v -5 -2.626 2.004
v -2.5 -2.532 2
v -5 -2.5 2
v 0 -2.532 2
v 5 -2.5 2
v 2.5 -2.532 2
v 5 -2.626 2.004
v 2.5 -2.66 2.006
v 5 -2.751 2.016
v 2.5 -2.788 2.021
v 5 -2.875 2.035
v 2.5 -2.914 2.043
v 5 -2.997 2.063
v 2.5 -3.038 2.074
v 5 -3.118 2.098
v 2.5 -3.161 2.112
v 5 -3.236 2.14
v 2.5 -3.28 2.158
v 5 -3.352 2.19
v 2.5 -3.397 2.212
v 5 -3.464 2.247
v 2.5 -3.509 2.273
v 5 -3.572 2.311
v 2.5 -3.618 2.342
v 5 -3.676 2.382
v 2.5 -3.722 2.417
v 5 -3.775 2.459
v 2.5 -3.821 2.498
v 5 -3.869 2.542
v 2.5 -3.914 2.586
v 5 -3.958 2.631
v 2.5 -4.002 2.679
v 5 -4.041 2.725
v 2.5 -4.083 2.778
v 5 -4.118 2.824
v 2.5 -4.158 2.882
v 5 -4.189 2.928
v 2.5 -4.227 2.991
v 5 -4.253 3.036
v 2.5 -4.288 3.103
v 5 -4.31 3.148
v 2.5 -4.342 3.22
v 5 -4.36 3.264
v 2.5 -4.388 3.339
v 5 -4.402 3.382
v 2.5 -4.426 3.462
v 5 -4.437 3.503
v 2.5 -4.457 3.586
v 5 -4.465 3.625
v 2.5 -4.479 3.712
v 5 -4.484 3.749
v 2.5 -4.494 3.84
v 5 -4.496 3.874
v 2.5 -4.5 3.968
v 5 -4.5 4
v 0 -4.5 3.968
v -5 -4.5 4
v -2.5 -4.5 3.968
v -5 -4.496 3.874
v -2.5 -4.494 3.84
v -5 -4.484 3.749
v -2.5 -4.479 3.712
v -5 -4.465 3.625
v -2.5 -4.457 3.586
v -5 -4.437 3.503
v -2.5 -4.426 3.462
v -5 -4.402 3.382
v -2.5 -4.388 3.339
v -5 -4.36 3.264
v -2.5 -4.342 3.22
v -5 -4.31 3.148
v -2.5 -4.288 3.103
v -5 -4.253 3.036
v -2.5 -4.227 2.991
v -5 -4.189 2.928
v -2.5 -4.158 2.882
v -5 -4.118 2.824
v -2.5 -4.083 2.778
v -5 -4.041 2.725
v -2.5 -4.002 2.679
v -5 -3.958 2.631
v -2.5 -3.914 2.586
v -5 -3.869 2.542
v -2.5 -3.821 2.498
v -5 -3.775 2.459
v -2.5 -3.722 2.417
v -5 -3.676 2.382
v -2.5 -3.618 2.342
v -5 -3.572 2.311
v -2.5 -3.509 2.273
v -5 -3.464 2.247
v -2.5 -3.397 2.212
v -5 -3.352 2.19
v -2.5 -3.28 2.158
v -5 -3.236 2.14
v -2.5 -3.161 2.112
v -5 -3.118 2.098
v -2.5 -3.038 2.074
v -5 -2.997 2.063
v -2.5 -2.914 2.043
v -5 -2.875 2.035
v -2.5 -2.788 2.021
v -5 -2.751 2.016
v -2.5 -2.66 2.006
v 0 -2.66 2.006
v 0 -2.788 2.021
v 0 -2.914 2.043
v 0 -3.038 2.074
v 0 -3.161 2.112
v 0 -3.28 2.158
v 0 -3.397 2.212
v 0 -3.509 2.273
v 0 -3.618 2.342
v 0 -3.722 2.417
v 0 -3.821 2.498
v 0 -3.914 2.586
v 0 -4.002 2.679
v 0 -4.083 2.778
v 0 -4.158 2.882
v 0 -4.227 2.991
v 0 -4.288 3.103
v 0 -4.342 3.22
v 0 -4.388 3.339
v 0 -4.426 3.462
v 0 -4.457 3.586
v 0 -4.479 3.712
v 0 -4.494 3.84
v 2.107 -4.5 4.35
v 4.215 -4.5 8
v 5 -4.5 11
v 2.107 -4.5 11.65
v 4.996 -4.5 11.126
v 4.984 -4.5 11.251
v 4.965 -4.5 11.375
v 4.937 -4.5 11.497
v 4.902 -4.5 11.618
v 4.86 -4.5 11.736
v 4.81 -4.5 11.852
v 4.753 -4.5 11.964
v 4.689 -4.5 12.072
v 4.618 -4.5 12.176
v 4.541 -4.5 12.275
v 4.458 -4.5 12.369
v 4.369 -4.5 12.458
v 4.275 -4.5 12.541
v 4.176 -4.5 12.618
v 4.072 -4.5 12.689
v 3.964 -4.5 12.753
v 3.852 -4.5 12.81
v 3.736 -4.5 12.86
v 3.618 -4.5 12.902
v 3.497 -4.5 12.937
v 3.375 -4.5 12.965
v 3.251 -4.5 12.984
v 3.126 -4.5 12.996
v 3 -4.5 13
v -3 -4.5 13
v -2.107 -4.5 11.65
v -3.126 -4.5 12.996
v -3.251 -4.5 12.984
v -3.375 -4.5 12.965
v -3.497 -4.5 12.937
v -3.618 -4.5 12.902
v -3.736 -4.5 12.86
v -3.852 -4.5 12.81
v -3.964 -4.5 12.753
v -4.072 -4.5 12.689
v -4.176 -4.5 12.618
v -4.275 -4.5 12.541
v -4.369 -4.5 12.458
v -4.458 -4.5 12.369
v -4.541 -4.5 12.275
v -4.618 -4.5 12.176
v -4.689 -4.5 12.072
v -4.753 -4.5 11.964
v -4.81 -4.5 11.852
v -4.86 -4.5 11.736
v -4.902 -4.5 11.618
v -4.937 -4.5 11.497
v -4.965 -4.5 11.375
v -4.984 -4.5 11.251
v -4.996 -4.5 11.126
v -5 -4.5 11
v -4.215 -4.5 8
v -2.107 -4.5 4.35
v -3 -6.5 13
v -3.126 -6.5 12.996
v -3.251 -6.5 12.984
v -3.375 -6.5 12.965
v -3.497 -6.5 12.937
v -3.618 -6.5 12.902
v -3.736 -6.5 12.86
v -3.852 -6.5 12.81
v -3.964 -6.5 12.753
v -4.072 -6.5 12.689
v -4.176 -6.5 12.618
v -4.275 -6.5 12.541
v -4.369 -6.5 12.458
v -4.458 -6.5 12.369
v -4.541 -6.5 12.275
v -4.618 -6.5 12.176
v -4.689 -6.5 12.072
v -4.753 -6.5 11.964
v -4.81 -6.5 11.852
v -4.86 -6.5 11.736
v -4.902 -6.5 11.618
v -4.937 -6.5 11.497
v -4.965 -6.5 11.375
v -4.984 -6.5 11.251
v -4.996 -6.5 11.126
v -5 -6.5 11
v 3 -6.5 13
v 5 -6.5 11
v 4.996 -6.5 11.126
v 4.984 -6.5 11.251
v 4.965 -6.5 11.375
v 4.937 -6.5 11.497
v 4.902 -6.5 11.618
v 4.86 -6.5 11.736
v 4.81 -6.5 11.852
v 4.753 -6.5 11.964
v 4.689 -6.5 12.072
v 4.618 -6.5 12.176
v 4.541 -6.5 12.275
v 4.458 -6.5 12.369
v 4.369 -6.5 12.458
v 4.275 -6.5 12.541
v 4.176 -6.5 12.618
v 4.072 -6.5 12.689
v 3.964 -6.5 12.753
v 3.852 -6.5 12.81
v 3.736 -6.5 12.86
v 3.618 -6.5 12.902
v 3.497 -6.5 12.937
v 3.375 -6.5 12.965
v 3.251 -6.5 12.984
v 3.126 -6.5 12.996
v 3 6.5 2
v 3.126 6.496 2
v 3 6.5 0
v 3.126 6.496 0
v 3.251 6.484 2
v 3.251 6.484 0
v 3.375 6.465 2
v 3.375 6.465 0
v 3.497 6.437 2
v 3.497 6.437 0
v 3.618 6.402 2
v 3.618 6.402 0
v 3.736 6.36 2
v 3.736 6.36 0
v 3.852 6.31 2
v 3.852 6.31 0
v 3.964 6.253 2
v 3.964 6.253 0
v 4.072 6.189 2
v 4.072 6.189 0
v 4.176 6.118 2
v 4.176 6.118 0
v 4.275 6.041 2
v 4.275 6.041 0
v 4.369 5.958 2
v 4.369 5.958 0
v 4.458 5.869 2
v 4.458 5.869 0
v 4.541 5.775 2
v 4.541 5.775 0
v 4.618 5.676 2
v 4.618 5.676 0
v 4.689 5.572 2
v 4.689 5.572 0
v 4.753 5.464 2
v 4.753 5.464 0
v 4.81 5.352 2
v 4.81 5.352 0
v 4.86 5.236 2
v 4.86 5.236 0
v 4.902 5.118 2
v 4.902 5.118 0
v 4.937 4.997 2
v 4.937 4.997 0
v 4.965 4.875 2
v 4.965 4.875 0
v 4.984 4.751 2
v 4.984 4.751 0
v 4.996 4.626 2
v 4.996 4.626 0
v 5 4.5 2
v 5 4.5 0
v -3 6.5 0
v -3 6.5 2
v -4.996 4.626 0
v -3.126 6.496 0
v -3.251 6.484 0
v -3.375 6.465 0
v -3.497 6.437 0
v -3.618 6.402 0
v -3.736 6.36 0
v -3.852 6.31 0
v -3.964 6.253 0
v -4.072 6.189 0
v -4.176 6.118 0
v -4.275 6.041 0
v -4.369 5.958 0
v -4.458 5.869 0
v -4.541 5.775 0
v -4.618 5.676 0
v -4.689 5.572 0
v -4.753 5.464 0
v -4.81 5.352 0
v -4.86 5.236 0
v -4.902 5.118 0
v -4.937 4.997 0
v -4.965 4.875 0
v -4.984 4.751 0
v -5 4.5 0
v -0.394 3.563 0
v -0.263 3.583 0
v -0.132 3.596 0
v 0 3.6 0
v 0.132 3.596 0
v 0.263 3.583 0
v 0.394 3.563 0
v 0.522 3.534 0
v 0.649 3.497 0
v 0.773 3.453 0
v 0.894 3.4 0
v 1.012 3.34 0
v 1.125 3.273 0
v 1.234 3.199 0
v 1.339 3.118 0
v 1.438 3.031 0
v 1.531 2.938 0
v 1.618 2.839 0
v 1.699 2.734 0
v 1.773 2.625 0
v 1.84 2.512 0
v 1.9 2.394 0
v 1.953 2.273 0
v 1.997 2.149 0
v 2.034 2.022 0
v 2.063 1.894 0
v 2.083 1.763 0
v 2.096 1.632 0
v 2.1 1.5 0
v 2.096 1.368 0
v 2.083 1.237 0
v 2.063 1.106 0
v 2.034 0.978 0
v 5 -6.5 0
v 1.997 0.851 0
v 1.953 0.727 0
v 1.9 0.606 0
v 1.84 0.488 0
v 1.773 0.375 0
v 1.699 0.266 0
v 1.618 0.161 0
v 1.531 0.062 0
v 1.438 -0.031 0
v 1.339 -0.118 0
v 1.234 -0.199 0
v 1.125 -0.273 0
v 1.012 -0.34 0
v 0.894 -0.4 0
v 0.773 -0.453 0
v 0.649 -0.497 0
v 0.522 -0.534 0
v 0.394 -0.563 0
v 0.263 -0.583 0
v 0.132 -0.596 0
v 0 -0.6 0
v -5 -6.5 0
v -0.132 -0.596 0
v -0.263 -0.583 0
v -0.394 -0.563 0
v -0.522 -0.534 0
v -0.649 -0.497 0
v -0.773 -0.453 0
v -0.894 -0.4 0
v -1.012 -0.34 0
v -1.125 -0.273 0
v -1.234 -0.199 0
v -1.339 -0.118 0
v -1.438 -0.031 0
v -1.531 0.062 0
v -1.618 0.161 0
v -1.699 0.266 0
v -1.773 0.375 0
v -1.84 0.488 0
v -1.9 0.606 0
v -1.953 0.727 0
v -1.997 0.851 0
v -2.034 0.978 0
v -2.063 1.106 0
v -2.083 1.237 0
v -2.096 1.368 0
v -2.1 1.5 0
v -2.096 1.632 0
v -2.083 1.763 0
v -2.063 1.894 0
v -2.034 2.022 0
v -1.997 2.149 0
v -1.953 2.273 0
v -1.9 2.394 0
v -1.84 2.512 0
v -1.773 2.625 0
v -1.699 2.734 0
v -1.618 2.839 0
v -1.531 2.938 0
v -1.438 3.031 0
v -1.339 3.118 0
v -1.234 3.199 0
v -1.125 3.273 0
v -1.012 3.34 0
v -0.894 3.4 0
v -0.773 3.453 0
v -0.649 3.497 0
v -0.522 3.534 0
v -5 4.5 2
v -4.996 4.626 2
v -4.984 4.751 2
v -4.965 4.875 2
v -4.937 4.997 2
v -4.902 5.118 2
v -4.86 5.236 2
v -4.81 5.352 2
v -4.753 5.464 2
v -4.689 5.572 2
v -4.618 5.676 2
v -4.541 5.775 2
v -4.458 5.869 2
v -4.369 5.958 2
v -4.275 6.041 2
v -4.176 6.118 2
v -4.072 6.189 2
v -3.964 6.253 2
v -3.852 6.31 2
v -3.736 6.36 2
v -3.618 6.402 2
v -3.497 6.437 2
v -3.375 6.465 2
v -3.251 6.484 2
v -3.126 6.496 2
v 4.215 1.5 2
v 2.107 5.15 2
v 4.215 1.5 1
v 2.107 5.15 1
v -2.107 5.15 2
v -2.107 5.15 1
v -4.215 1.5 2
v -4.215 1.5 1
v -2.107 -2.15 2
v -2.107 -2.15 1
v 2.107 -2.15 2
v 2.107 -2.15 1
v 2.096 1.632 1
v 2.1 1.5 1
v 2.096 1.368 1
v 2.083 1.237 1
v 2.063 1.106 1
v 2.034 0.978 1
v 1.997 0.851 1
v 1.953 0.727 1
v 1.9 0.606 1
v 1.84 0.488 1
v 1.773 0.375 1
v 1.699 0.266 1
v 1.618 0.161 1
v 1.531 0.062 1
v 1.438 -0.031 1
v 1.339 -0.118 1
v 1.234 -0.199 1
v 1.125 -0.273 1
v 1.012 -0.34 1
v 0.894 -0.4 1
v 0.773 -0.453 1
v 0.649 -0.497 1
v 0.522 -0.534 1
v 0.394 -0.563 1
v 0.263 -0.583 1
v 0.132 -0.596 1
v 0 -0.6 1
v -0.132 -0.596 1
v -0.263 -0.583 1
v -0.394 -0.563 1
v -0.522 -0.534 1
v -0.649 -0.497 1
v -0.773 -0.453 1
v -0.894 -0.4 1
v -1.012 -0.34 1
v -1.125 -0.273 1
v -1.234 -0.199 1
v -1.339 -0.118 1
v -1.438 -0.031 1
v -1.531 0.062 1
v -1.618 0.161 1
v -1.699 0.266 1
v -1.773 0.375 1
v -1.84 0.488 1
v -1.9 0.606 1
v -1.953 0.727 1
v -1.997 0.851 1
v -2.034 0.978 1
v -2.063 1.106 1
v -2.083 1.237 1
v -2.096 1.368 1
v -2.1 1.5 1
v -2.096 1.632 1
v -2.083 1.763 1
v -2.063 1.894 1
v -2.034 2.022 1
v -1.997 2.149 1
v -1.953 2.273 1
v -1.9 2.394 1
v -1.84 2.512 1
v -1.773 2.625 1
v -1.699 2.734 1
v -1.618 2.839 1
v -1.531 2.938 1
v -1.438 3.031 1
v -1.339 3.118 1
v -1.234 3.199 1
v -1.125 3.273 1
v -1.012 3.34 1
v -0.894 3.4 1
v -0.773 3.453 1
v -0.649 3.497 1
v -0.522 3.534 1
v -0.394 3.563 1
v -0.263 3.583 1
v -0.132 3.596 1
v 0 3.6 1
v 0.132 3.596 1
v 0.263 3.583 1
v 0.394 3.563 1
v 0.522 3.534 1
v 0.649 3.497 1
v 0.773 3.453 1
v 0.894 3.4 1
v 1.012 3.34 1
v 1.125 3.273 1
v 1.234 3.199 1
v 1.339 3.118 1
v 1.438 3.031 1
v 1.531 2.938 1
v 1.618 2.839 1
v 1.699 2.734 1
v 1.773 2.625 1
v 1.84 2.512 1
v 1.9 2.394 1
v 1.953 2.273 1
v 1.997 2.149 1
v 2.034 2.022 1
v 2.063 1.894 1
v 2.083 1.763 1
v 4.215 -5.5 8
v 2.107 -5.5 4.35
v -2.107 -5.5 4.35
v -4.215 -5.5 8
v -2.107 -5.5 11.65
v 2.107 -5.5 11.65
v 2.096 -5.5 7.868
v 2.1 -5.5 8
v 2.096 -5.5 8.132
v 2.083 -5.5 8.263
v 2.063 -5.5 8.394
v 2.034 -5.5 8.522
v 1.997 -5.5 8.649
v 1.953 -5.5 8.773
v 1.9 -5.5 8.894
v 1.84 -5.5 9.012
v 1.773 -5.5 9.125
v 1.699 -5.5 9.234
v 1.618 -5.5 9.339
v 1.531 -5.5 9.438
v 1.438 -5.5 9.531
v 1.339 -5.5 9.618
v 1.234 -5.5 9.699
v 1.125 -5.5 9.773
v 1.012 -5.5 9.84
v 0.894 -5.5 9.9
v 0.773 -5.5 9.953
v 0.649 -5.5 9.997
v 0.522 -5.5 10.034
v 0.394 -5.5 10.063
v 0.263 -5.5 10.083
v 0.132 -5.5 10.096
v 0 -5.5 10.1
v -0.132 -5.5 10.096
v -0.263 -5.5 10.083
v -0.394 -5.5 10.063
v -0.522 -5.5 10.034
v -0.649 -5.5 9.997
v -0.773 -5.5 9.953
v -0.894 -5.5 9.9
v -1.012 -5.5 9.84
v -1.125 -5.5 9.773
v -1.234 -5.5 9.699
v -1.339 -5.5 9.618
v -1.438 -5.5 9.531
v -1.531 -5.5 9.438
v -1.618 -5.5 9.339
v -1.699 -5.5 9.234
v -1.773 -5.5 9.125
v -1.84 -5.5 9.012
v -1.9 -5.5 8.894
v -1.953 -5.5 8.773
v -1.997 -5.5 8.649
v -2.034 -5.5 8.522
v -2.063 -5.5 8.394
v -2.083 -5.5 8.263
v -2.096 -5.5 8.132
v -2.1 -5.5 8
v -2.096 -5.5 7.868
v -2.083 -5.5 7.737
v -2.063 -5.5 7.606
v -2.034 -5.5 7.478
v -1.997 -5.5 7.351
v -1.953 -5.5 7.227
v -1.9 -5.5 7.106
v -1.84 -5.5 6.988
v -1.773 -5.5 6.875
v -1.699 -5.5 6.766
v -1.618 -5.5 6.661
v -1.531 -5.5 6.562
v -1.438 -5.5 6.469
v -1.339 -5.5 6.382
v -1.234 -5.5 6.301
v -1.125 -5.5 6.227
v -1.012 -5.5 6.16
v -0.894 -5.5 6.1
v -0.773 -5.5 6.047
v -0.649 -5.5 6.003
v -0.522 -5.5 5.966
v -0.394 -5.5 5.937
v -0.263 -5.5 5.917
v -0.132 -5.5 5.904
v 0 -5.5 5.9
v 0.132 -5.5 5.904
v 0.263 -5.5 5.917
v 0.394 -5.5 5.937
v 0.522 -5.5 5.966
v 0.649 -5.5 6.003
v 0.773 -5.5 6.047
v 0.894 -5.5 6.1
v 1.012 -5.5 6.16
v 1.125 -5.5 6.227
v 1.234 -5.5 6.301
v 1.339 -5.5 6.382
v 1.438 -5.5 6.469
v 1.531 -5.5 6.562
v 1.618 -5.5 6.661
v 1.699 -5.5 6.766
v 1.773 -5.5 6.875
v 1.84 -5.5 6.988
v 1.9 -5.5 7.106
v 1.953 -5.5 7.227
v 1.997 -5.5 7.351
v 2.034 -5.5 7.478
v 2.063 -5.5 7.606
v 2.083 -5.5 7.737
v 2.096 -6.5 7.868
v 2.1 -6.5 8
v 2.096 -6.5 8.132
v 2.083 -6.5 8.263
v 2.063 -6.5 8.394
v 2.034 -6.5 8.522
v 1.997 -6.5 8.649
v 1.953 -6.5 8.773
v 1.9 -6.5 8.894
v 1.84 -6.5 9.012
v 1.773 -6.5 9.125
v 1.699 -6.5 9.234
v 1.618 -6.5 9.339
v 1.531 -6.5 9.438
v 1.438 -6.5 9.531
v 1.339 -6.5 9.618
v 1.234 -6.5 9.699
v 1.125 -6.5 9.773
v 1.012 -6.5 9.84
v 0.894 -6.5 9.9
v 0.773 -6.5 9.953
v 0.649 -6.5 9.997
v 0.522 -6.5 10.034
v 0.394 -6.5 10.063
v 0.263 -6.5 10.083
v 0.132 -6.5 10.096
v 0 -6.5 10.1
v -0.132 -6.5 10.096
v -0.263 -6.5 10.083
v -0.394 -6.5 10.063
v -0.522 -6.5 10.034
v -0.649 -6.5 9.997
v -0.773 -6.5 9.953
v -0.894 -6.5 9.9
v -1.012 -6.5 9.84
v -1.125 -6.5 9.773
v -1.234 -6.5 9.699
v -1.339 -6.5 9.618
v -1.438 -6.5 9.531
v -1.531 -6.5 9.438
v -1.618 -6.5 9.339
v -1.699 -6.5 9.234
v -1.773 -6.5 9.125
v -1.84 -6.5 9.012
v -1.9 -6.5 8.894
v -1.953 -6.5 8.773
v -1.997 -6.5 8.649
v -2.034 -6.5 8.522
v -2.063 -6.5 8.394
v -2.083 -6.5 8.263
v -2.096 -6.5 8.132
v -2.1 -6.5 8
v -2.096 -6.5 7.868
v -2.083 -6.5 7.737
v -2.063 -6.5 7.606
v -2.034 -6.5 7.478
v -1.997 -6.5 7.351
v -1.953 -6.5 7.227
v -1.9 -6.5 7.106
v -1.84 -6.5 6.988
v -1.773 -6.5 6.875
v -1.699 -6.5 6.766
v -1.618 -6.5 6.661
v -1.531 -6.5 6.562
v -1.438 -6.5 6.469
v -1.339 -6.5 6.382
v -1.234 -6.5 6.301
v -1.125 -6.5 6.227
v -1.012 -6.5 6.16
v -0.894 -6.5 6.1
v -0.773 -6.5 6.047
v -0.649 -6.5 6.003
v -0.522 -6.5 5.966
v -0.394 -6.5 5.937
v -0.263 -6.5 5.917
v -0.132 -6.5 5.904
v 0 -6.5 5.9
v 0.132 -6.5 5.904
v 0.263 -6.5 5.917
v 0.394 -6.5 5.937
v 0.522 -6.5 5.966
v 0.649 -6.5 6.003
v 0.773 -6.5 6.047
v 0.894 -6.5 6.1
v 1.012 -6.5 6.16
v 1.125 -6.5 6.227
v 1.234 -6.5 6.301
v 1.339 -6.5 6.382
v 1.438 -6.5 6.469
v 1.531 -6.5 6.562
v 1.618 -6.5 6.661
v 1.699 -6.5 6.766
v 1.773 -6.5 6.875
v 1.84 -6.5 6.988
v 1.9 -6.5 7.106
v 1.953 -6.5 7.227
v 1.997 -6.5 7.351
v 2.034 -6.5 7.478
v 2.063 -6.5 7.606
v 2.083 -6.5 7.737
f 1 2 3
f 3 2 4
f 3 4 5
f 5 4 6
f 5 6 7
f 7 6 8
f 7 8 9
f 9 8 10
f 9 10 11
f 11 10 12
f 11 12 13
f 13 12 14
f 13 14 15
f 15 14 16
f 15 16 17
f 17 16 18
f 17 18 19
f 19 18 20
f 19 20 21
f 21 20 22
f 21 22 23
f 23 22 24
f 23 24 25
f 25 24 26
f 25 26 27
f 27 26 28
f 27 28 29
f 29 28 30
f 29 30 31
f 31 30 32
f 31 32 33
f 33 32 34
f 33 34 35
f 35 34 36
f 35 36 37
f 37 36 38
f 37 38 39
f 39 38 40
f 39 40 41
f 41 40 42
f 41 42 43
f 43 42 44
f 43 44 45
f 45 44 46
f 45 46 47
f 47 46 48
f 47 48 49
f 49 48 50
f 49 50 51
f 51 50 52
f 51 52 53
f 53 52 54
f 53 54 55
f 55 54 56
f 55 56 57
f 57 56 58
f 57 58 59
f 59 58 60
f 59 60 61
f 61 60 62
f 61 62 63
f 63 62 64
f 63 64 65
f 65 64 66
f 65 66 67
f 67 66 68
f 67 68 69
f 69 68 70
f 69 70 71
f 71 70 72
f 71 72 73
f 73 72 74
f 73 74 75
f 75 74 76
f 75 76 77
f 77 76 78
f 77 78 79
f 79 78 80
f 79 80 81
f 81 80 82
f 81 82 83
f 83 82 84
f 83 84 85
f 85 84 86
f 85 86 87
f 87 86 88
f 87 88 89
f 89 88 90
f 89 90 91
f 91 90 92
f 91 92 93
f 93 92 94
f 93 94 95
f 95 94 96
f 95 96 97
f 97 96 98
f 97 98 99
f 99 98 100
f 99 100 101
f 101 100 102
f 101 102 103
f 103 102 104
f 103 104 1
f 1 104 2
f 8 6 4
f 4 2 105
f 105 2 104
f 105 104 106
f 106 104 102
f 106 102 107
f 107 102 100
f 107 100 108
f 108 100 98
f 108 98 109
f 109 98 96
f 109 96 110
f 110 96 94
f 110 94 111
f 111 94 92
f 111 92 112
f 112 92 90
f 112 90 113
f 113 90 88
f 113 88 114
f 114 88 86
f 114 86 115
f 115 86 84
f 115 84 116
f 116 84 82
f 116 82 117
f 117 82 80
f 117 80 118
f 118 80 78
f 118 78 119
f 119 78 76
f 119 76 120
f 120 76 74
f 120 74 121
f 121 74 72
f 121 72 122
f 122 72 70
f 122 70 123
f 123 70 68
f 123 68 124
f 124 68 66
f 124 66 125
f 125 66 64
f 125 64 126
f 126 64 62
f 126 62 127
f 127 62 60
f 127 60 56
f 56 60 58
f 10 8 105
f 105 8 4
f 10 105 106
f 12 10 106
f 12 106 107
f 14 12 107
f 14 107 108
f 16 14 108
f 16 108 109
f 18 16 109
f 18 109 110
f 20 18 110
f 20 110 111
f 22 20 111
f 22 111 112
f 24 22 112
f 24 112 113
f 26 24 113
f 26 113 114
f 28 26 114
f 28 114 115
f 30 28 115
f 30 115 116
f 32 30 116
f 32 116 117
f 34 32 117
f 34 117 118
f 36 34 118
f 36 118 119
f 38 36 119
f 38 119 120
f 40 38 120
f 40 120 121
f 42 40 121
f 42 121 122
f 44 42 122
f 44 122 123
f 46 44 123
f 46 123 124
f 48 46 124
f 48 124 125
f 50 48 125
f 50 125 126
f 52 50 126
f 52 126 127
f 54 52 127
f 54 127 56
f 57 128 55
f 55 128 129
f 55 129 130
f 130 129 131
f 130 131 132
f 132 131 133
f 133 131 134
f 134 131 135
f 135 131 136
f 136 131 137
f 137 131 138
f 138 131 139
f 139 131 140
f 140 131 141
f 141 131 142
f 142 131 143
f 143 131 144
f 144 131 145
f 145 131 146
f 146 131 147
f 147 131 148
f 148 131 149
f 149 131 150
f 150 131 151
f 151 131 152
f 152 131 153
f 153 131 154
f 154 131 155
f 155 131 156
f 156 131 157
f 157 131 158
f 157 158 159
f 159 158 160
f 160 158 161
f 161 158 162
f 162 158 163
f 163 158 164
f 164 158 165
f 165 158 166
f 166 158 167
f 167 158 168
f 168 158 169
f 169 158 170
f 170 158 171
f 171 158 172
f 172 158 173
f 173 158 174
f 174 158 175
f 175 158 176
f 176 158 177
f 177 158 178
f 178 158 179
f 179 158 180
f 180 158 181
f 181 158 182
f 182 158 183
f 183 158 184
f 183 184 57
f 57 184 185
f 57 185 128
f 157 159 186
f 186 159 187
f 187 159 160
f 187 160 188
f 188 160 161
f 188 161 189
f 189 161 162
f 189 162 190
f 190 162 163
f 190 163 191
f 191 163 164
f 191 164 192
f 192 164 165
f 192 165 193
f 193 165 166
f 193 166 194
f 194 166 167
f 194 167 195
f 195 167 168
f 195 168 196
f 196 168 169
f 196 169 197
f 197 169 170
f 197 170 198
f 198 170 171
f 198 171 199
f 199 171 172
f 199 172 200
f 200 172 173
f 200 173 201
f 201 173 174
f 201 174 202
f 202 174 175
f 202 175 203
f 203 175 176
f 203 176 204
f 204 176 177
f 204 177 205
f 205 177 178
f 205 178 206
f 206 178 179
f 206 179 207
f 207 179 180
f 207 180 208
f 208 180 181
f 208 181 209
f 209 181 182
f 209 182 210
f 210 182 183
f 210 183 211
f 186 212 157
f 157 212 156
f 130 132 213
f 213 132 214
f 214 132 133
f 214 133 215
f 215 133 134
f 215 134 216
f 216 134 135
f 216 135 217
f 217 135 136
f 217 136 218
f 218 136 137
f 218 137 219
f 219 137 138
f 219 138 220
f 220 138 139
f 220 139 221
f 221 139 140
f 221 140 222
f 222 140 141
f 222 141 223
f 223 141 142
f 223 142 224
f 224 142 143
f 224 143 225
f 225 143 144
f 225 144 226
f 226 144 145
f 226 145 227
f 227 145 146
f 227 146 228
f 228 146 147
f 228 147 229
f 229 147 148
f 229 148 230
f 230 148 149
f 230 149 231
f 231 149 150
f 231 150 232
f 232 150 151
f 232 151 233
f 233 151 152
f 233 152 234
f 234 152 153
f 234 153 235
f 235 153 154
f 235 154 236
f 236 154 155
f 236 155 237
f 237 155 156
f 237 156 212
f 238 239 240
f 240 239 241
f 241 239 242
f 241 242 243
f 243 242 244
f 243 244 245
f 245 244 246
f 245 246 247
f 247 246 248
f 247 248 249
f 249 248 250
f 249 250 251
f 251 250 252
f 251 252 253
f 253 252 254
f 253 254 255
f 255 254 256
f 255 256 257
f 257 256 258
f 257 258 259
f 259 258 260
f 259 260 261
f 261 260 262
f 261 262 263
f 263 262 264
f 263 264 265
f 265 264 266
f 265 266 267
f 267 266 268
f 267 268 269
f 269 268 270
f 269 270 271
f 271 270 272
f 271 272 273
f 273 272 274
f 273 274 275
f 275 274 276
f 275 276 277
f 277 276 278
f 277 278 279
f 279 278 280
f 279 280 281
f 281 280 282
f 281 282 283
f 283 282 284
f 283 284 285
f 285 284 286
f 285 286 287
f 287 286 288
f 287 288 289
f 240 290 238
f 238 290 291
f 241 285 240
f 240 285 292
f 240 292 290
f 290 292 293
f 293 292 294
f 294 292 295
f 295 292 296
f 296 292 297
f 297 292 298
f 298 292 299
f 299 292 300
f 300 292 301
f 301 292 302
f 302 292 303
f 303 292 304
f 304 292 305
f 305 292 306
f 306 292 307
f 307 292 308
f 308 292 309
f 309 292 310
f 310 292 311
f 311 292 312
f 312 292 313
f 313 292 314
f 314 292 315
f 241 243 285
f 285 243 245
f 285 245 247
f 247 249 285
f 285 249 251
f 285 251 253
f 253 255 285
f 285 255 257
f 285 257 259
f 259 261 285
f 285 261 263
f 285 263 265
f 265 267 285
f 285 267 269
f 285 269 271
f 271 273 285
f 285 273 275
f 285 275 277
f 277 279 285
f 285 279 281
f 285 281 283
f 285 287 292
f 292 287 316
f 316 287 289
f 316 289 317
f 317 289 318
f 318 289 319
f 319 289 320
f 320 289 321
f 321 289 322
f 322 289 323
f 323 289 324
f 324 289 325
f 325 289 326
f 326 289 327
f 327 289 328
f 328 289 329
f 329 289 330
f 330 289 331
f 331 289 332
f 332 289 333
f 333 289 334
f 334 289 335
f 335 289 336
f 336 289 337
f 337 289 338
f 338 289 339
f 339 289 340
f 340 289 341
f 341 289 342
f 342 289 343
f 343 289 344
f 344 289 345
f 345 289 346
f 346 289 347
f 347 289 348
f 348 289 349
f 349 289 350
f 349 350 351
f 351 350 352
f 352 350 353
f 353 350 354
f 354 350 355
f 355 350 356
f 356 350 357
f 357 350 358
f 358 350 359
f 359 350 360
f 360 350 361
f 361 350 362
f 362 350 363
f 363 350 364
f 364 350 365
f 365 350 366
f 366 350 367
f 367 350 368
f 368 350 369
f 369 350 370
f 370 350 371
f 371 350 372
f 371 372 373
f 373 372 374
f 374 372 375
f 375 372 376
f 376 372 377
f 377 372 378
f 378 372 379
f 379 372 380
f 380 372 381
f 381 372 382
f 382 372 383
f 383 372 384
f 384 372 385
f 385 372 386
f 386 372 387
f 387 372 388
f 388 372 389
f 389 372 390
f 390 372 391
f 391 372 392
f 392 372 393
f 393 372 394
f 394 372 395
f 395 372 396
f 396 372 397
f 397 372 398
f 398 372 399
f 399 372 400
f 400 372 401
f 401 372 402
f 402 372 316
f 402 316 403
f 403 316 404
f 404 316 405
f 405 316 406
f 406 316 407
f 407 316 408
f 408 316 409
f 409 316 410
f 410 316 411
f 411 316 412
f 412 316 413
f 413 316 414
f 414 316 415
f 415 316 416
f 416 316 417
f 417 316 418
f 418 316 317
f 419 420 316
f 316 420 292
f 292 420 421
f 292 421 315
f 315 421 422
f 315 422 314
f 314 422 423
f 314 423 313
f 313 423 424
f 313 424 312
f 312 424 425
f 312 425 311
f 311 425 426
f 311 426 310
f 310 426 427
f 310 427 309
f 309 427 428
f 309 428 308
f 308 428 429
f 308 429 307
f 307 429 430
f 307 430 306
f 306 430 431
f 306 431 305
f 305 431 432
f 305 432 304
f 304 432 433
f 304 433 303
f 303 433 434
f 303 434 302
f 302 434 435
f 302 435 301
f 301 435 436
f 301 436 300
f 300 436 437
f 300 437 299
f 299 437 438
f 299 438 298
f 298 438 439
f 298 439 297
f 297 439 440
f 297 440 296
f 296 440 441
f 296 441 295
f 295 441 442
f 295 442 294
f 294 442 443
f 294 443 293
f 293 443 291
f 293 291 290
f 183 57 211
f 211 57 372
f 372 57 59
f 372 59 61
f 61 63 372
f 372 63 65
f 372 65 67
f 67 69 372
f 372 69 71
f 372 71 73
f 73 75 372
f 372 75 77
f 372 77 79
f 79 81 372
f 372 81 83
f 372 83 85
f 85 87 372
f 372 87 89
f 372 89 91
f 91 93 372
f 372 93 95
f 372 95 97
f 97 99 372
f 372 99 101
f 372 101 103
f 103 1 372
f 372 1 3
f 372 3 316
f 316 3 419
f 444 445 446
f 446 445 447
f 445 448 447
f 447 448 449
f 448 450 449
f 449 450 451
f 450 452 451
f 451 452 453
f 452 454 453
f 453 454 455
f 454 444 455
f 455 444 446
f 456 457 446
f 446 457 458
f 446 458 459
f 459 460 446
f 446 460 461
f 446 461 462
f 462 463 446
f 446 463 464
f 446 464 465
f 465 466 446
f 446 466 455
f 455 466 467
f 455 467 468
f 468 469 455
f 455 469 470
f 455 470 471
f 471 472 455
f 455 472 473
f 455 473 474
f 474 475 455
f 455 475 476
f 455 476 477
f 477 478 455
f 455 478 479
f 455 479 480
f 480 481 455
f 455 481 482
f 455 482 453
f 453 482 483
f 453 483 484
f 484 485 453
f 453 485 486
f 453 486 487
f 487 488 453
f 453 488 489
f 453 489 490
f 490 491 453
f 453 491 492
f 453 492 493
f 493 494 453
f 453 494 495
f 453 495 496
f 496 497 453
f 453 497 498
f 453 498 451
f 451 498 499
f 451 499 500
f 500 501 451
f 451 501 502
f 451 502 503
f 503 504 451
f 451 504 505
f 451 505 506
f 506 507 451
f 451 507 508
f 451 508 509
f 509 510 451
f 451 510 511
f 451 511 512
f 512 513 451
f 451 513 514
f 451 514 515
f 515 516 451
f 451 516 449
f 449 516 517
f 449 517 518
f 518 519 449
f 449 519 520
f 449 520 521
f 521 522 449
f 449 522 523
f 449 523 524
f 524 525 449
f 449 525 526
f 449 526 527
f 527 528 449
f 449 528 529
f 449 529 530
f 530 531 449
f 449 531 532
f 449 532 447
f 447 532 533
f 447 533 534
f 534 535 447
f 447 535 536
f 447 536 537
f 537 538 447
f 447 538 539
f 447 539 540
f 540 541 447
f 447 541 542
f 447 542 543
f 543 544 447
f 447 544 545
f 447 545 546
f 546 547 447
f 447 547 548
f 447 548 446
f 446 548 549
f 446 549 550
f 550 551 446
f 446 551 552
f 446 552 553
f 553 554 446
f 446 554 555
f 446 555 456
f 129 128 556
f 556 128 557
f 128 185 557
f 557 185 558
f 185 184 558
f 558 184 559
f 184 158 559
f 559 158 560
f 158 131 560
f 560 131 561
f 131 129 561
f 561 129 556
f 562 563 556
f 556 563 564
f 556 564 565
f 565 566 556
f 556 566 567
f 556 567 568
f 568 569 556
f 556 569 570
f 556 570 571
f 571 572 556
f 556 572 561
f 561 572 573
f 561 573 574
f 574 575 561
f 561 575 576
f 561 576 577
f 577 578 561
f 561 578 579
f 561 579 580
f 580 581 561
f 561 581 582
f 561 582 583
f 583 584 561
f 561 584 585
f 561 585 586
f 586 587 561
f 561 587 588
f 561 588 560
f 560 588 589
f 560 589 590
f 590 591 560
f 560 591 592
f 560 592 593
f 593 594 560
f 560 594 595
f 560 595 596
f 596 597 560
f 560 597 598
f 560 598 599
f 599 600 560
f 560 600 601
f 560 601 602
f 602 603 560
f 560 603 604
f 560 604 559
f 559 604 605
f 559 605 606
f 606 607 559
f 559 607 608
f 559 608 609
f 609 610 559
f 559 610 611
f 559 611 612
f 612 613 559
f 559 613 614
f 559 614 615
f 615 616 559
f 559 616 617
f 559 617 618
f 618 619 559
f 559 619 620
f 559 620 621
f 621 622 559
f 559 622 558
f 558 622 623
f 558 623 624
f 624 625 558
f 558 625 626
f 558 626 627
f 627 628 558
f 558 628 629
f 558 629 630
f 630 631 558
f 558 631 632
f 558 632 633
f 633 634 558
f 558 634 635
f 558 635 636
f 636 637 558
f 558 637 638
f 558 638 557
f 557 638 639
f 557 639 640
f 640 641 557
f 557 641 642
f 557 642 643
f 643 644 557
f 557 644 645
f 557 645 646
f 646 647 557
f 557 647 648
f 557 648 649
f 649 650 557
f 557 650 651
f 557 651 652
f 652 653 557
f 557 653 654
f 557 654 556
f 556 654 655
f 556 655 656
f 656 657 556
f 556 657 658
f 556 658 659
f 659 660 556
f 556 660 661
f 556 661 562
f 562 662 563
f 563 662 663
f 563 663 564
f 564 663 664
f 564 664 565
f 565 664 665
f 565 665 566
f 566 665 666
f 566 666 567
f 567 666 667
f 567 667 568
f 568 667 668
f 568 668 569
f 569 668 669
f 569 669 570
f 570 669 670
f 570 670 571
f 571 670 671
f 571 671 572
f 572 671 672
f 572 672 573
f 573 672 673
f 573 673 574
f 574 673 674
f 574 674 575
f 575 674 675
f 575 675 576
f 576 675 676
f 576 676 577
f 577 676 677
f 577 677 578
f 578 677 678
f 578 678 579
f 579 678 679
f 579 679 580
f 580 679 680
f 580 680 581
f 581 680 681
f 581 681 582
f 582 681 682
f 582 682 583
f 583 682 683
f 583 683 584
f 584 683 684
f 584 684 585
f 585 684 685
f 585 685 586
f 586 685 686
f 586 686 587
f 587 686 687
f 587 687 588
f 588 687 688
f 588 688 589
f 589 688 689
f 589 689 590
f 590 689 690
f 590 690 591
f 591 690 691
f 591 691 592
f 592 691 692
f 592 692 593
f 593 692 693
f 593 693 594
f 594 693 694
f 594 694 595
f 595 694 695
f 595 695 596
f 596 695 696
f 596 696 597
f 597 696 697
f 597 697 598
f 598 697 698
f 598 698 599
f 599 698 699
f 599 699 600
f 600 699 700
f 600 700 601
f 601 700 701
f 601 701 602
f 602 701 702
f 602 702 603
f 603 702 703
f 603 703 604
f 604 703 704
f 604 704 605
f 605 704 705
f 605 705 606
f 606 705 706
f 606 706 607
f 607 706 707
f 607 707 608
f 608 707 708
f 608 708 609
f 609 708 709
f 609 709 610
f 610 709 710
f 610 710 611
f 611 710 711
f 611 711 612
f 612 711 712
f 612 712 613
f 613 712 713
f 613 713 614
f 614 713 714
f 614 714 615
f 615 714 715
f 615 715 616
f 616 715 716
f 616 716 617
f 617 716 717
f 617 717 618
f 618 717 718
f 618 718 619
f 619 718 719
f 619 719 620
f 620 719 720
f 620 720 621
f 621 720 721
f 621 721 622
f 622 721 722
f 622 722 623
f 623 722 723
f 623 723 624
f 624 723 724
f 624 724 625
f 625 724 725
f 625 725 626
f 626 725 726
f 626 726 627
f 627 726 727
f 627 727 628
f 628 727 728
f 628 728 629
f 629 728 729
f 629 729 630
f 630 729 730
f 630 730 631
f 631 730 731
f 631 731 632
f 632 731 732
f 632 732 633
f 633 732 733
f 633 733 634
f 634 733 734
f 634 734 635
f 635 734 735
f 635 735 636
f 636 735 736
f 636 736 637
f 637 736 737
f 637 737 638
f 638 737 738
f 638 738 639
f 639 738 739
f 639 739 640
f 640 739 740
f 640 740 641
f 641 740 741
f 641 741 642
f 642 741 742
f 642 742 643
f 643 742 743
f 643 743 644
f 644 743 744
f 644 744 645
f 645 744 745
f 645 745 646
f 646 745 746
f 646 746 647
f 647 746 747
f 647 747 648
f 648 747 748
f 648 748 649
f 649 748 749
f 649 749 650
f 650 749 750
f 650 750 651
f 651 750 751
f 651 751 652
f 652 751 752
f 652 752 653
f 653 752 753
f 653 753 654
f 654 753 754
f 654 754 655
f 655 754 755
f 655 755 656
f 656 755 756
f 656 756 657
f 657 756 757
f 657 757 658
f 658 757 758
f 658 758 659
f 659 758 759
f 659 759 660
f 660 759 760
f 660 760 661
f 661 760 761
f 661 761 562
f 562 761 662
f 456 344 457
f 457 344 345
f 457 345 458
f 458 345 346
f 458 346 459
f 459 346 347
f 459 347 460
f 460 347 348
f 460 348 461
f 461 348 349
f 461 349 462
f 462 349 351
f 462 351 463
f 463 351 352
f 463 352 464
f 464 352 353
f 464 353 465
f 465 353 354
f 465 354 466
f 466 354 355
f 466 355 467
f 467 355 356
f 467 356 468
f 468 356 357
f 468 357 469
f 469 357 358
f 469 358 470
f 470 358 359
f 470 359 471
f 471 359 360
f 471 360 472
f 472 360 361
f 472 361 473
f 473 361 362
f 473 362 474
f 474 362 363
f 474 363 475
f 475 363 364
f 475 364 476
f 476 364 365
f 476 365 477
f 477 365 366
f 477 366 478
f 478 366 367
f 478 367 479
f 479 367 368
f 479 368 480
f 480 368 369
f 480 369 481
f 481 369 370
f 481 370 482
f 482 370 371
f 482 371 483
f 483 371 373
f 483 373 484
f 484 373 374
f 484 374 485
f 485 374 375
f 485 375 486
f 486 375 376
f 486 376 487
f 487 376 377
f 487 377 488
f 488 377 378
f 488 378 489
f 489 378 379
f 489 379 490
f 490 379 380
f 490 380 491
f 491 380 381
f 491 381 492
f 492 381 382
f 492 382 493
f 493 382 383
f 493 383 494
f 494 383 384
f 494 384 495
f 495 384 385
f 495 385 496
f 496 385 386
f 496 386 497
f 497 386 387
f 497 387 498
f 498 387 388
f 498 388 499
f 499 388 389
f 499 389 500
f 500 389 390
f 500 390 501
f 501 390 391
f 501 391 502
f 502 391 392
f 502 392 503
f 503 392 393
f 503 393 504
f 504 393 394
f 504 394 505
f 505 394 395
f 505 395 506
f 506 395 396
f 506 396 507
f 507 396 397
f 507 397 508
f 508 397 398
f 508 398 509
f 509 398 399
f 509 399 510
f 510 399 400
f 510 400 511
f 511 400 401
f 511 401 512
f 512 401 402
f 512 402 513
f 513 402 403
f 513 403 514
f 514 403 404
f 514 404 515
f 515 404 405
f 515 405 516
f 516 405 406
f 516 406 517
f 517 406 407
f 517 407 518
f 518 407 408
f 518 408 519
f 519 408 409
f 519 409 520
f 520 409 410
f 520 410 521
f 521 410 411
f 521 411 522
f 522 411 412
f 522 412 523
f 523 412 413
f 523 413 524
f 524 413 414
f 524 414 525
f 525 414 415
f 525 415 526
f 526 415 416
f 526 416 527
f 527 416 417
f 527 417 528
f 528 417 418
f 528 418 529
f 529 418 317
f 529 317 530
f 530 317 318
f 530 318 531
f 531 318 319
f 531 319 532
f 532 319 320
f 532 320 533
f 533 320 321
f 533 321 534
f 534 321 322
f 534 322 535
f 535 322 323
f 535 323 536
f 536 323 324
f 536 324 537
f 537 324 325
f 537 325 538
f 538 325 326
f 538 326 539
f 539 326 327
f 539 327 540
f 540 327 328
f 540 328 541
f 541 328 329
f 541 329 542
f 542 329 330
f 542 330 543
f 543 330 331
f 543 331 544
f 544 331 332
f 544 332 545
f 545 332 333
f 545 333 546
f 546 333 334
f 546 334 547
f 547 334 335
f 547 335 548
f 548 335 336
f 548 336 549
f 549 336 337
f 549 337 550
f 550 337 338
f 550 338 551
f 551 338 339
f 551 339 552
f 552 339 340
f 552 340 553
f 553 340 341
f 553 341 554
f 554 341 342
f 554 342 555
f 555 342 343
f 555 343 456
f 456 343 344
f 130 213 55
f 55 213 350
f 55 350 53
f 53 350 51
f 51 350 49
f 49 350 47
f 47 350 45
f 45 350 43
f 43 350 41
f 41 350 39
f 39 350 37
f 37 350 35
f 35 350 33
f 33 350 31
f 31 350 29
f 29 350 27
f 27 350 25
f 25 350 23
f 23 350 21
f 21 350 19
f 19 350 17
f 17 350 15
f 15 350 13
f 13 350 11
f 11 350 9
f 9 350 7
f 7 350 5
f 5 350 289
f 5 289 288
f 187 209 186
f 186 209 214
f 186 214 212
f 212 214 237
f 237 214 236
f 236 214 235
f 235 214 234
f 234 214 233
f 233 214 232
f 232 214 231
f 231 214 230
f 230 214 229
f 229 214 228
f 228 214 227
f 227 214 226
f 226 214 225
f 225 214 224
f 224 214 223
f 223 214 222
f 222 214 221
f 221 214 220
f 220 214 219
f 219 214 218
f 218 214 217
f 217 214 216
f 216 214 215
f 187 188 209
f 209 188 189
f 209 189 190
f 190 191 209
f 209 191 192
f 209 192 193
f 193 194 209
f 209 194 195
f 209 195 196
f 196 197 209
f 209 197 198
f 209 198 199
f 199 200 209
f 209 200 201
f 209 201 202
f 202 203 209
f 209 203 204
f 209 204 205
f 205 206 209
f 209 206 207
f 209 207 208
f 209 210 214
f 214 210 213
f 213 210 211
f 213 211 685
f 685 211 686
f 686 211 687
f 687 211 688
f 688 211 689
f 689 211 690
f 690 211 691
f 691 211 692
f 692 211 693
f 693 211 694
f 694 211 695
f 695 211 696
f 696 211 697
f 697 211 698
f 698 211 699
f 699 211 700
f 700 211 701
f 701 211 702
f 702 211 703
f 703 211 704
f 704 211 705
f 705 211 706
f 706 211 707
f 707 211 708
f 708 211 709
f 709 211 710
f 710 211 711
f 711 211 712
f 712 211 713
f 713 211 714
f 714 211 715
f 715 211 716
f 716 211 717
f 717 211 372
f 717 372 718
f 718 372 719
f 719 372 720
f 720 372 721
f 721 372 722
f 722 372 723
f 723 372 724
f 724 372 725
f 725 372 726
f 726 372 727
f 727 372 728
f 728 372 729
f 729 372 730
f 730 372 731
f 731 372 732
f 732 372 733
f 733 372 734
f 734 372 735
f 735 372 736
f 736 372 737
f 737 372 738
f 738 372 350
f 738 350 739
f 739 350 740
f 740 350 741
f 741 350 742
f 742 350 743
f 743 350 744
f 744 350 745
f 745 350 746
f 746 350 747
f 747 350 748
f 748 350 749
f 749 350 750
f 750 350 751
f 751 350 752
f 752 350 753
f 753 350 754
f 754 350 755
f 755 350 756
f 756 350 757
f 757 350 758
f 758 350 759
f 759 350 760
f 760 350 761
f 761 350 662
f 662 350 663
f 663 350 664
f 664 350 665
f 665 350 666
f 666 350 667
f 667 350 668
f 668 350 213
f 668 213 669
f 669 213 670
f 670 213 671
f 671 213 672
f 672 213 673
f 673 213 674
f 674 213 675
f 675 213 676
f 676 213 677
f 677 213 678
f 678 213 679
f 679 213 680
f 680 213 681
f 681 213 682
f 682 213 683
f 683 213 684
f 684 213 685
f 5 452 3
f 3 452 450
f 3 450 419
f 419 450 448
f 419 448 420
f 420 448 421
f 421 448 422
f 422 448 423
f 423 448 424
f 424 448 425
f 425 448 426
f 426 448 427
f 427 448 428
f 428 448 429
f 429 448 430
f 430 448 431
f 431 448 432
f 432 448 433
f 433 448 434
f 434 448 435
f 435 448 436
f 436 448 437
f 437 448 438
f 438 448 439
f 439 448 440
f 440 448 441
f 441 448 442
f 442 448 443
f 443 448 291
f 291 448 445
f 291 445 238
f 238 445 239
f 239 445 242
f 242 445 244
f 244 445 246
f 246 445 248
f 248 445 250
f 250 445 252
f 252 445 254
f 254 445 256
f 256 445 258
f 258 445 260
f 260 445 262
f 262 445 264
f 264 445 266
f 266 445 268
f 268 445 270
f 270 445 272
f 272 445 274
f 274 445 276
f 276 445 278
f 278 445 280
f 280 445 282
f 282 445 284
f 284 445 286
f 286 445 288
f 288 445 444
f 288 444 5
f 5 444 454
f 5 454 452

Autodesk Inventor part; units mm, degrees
ref_plane "YZ Plane" through (0, 0, 0) normal (1, 0, 0) x (0, 1, 0)
ref_plane "XZ Plane" through (0, 0, 0) normal (0, 1, 0) x (-1, 0, 0)
ref_plane "XY Plane" through (0, 0, 0) normal (0, 0, 1) x (1, 0, 0)
sketch "Sketch1" plane through (0, 0, 0) normal (0, 0, 1) x (1, 0, 0)
  line L0 (-5, -6.5) -> (5, -6.5)
  line L1 (5, -6.5) -> (5, 6.5)
  line L2 (5, 6.5) -> (-5, 6.5)
  line L3 (-5, 6.5) -> (-5, -6.5)
  line L4 (-5, -6.5) -> (5, 6.5) construction
  line L5 (5, -6.5) -> (-5, 6.5) construction
  circle A0 centre (0, 1.5) radius 2.1
  point P0 (0, 0)
  dimension "d0" = 10
  dimension "d1" = 13
  dimension "d2" = 4.2
  dimension "d3" = 5
  dimension "d4" = 5
extrude "Extrusion1" add sketch "Sketch1" along normal blind 2
sketch "Sketch2" plane through (-5, -6.5, 0) normal (0, -1, 0) x (1, 0, 0)
  line L0 (0, 0) -> (10, 0)
  line L1 (10, 0) -> (10, 13)
  line L2 (10, 13) -> (0, 13)
  line L3 (0, 13) -> (0, 0)
  circle A0 centre (5, 8) radius 2.1
  point P0 (5, 0)
  dimension "d7" = 10
  dimension "d8" = 13
  dimension "d9" = 5
  dimension "d10" = 13
  dimension "d11" = 4.2
  dimension "d12" = 5
  dimension "d13" = 5
extrude "Extrusion2" add sketch "Sketch2" against normal blind 2
sketch "Sketch3" plane through (-5, -4.5, 0) normal (0, 1, 0) x (1, 0, 0)
  circle A0 centre (5, -8) radius 2.1 projected
  line L0 (9.2147, -8) -> (7.1073, -11.65)
  line L1 (7.1073, -11.65) -> (2.8927, -11.65)
  line L2 (2.8927, -11.65) -> (0.7853, -8)
  line L3 (0.7853, -8) -> (2.8927, -4.35)
  line L4 (2.8927, -4.35) -> (7.1073, -4.35)
  line L5 (7.1073, -4.35) -> (9.2147, -8)
  point P0 (5, 0)
  dimension "d16" = 7.3
extrude "Extrusion3" cut sketch "Sketch3" against normal blind 1
sketch "Sketch4" plane through (0, 0, 2) normal (0, 0, 1) x (1, 0, 0)
  circle A0 centre (0, 1.5) radius 2.1 projected
  line L0 (4.2147, 1.5) -> (2.1073, -2.15)
  line L1 (2.1073, -2.15) -> (-2.1073, -2.15)
  line L2 (-2.1073, -2.15) -> (-4.2147, 1.5)
  line L3 (-4.2147, 1.5) -> (-2.1073, 5.15)
  line L4 (-2.1073, 5.15) -> (2.1073, 5.15)
  line L5 (2.1073, 5.15) -> (4.2147, 1.5)
  point P0 (0, 0)
  dimension "d19" = 7.3
extrude "Extrusion4" cut sketch "Sketch4" against normal blind 1
fillet "Fillet1" radius 2 4 edges at (-5, 6.5, 1) (5, 6.5, 1) (5, -5.5, 13) (-5, -5.5, 13)
fillet "Fillet2" radius 2 1 edges at (0, -4.5, 2)
properties part number "24 bevestigings hoekjes 2 kanten"
